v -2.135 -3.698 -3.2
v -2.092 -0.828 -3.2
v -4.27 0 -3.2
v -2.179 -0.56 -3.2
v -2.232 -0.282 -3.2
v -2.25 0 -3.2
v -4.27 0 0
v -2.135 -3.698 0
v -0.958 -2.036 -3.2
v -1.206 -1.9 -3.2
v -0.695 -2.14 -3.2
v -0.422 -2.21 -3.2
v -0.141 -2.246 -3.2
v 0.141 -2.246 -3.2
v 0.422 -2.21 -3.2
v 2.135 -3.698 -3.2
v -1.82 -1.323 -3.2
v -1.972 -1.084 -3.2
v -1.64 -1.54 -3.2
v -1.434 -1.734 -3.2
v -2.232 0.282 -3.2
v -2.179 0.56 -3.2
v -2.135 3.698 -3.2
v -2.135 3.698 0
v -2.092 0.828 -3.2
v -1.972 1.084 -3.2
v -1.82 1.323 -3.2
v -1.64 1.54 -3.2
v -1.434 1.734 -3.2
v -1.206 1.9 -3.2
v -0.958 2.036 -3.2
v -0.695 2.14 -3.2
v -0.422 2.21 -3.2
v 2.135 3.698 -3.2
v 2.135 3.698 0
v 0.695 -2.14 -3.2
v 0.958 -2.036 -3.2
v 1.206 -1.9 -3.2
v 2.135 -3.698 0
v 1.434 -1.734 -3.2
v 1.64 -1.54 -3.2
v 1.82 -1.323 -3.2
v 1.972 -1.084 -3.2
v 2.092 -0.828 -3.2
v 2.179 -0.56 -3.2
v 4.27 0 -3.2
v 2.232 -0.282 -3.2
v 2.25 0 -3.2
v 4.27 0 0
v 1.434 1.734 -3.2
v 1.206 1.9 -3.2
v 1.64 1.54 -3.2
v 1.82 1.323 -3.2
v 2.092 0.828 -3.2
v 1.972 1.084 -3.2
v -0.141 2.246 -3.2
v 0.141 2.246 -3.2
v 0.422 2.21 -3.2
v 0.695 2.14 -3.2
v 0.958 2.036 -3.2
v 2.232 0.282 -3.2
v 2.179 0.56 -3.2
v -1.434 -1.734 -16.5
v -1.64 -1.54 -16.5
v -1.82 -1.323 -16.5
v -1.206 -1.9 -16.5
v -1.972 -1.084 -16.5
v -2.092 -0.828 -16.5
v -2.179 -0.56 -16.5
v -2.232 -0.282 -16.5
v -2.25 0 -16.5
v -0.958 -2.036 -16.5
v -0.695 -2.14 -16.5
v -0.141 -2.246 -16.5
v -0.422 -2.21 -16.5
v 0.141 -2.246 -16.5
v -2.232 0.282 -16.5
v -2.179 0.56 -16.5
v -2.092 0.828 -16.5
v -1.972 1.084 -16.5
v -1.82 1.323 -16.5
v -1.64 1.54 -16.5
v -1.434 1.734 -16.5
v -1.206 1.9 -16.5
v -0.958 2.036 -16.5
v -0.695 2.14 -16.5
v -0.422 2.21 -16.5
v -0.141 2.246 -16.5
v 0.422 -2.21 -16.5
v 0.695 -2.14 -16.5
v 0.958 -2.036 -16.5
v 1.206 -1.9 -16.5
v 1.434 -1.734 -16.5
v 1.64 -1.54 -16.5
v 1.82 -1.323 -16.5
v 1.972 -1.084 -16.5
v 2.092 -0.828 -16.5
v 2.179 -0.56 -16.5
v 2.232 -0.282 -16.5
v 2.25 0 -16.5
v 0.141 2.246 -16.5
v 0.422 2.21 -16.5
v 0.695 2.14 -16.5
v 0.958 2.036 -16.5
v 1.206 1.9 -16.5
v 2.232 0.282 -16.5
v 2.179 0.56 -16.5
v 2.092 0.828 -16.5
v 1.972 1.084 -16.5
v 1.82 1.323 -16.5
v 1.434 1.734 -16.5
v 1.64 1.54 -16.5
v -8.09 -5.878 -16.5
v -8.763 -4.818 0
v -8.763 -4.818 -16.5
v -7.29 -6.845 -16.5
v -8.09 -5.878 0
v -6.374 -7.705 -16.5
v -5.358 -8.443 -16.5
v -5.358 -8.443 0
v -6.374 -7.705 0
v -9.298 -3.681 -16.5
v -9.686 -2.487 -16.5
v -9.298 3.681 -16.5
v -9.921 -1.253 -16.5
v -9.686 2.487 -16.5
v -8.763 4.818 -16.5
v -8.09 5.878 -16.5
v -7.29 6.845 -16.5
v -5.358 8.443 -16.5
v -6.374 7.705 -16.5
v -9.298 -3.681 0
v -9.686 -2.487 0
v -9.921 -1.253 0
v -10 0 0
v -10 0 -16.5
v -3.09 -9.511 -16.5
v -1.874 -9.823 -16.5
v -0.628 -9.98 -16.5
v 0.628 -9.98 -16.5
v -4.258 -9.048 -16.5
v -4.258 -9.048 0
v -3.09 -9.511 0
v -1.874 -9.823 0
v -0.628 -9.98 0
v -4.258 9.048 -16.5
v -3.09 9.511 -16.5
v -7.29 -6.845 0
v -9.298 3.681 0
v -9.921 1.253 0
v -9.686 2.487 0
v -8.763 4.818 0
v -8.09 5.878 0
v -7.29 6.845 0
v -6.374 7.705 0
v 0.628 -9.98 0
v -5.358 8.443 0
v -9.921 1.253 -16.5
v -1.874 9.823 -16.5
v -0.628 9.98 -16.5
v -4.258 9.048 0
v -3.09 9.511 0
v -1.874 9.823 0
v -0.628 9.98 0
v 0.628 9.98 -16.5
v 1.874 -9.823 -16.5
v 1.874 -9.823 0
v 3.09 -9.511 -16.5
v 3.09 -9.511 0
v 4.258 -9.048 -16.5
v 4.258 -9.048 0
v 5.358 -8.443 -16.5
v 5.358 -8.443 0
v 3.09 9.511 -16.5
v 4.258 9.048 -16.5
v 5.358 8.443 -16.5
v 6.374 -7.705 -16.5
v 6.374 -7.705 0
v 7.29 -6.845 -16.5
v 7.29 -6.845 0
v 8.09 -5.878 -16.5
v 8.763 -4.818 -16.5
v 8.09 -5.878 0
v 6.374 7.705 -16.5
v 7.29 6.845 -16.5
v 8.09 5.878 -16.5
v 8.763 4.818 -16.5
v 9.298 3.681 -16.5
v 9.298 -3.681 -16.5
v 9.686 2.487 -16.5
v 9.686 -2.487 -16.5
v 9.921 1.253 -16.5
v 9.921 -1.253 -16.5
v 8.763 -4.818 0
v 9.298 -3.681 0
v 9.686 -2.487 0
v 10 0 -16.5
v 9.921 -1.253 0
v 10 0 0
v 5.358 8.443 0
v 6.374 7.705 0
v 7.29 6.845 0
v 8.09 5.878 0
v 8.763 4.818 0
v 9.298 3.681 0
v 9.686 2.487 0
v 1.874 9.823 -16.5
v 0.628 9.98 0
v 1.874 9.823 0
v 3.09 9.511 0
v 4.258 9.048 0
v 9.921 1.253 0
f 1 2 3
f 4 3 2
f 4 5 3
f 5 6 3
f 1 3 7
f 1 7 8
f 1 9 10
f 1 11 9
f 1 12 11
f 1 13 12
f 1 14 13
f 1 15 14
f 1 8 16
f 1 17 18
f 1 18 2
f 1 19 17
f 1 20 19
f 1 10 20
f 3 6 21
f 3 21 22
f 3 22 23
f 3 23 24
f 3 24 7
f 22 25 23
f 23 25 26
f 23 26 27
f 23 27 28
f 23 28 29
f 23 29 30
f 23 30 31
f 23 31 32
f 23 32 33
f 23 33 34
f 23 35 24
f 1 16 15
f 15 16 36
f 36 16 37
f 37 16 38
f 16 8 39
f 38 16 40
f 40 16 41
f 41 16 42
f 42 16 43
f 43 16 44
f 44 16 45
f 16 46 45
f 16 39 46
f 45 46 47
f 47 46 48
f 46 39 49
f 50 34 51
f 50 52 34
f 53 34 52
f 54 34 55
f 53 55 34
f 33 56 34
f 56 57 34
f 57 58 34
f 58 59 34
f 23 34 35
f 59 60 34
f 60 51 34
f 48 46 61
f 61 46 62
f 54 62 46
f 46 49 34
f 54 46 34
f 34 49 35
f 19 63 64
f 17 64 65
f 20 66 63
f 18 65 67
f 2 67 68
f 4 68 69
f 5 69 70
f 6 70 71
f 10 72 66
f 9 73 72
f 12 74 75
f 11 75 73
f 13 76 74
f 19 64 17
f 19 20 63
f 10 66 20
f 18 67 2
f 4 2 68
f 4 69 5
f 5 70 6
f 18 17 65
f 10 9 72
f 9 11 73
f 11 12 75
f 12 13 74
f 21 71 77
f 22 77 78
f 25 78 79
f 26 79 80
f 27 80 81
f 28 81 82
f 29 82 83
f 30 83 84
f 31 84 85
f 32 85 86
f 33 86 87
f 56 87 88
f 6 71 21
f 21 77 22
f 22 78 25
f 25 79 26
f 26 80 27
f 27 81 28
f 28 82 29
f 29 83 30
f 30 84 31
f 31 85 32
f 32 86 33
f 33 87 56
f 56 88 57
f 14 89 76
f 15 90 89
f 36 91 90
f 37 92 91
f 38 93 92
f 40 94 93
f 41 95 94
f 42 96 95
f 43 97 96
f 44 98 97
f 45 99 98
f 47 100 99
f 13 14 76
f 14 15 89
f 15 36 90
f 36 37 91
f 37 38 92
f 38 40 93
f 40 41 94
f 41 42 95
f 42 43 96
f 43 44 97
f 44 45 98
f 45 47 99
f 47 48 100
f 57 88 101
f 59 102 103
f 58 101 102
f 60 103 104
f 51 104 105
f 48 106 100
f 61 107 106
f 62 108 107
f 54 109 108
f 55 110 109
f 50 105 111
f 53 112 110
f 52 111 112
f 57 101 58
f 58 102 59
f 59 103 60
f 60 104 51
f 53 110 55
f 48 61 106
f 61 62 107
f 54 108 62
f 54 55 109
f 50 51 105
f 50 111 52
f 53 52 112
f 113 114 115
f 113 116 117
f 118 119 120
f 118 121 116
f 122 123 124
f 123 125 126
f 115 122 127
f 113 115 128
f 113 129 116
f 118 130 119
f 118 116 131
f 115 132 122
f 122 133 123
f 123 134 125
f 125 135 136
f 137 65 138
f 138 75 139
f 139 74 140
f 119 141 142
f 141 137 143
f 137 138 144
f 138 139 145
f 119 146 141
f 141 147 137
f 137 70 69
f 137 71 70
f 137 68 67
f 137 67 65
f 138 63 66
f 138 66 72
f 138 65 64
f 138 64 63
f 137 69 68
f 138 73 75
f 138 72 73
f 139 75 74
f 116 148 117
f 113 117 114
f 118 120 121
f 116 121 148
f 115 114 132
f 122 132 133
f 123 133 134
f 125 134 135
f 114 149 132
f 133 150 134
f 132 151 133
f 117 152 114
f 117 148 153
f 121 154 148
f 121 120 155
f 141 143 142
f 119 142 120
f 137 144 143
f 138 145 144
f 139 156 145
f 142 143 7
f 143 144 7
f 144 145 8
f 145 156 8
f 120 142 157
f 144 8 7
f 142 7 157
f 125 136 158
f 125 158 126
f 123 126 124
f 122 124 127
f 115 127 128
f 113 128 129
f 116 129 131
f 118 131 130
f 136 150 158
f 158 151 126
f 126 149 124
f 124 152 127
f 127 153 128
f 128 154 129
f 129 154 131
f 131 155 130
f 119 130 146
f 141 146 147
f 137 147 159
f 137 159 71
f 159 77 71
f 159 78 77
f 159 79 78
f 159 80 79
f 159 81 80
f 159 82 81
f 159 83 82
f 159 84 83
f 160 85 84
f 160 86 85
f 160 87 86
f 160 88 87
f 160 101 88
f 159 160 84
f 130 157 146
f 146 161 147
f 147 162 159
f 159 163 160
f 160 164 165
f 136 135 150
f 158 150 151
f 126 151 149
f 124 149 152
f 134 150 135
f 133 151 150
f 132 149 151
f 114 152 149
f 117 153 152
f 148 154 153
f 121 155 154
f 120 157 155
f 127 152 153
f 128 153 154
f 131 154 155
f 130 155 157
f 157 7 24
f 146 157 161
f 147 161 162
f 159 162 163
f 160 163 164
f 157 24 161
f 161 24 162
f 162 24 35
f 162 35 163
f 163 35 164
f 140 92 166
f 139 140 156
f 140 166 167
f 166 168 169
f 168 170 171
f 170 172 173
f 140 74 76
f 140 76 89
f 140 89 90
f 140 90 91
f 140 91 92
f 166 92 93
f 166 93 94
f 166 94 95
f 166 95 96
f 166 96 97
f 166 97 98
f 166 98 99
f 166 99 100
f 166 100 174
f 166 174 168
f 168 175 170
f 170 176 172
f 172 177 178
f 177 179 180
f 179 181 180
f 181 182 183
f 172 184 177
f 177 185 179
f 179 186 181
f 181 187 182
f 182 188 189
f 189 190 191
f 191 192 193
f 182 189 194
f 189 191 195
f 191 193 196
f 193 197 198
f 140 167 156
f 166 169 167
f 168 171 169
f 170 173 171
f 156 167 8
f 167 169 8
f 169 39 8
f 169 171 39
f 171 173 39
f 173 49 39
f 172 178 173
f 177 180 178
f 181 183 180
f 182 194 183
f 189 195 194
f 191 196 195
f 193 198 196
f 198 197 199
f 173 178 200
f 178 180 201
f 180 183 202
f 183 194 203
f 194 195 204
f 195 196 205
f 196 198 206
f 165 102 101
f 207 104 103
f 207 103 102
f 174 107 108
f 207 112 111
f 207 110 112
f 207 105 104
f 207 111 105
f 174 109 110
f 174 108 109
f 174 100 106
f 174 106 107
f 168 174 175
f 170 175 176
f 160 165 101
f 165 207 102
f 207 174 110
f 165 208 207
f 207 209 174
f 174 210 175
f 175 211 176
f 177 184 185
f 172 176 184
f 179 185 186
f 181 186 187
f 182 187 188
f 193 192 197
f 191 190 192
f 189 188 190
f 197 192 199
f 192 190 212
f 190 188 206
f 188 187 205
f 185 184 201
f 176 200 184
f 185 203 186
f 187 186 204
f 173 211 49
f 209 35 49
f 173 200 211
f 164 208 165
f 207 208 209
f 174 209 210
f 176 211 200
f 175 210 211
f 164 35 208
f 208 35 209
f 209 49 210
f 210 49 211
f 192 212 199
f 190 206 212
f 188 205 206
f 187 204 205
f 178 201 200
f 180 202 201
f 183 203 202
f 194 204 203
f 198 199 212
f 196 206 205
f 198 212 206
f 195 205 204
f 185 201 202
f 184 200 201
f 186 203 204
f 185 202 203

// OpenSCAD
$fn = 50;


difference() {
	union() {
		translate(v = [0, 0, -16.5000000000]) {
			cylinder(h = 16.5000000000, r = 10.0000000000);
		}
	}
	union() {
		translate(v = [0, 0, 0]) {
			rotate(a = [0, 0, 0]) {
				difference() {
					union() {
						translate(v = [0, 0, -3.2000000000]) {
							linear_extrude(height = 3.2000000000) {
								polygon(points = [[4.2698000000, 0.0000000000], [2.1349000000, 3.6977552691], [-2.1349000000, 3.6977552691], [-4.2698000000, 0.0000000000], [-2.1349000000, -3.6977552691], [2.1349000000, -3.6977552691]]);
							}
						}
					}
					union();
				}
			}
		}
		#translate(v = [0, 0, -100.0000000000]) {
			cylinder(h = 200, r = 2.2500000000);
		}
	}
}
